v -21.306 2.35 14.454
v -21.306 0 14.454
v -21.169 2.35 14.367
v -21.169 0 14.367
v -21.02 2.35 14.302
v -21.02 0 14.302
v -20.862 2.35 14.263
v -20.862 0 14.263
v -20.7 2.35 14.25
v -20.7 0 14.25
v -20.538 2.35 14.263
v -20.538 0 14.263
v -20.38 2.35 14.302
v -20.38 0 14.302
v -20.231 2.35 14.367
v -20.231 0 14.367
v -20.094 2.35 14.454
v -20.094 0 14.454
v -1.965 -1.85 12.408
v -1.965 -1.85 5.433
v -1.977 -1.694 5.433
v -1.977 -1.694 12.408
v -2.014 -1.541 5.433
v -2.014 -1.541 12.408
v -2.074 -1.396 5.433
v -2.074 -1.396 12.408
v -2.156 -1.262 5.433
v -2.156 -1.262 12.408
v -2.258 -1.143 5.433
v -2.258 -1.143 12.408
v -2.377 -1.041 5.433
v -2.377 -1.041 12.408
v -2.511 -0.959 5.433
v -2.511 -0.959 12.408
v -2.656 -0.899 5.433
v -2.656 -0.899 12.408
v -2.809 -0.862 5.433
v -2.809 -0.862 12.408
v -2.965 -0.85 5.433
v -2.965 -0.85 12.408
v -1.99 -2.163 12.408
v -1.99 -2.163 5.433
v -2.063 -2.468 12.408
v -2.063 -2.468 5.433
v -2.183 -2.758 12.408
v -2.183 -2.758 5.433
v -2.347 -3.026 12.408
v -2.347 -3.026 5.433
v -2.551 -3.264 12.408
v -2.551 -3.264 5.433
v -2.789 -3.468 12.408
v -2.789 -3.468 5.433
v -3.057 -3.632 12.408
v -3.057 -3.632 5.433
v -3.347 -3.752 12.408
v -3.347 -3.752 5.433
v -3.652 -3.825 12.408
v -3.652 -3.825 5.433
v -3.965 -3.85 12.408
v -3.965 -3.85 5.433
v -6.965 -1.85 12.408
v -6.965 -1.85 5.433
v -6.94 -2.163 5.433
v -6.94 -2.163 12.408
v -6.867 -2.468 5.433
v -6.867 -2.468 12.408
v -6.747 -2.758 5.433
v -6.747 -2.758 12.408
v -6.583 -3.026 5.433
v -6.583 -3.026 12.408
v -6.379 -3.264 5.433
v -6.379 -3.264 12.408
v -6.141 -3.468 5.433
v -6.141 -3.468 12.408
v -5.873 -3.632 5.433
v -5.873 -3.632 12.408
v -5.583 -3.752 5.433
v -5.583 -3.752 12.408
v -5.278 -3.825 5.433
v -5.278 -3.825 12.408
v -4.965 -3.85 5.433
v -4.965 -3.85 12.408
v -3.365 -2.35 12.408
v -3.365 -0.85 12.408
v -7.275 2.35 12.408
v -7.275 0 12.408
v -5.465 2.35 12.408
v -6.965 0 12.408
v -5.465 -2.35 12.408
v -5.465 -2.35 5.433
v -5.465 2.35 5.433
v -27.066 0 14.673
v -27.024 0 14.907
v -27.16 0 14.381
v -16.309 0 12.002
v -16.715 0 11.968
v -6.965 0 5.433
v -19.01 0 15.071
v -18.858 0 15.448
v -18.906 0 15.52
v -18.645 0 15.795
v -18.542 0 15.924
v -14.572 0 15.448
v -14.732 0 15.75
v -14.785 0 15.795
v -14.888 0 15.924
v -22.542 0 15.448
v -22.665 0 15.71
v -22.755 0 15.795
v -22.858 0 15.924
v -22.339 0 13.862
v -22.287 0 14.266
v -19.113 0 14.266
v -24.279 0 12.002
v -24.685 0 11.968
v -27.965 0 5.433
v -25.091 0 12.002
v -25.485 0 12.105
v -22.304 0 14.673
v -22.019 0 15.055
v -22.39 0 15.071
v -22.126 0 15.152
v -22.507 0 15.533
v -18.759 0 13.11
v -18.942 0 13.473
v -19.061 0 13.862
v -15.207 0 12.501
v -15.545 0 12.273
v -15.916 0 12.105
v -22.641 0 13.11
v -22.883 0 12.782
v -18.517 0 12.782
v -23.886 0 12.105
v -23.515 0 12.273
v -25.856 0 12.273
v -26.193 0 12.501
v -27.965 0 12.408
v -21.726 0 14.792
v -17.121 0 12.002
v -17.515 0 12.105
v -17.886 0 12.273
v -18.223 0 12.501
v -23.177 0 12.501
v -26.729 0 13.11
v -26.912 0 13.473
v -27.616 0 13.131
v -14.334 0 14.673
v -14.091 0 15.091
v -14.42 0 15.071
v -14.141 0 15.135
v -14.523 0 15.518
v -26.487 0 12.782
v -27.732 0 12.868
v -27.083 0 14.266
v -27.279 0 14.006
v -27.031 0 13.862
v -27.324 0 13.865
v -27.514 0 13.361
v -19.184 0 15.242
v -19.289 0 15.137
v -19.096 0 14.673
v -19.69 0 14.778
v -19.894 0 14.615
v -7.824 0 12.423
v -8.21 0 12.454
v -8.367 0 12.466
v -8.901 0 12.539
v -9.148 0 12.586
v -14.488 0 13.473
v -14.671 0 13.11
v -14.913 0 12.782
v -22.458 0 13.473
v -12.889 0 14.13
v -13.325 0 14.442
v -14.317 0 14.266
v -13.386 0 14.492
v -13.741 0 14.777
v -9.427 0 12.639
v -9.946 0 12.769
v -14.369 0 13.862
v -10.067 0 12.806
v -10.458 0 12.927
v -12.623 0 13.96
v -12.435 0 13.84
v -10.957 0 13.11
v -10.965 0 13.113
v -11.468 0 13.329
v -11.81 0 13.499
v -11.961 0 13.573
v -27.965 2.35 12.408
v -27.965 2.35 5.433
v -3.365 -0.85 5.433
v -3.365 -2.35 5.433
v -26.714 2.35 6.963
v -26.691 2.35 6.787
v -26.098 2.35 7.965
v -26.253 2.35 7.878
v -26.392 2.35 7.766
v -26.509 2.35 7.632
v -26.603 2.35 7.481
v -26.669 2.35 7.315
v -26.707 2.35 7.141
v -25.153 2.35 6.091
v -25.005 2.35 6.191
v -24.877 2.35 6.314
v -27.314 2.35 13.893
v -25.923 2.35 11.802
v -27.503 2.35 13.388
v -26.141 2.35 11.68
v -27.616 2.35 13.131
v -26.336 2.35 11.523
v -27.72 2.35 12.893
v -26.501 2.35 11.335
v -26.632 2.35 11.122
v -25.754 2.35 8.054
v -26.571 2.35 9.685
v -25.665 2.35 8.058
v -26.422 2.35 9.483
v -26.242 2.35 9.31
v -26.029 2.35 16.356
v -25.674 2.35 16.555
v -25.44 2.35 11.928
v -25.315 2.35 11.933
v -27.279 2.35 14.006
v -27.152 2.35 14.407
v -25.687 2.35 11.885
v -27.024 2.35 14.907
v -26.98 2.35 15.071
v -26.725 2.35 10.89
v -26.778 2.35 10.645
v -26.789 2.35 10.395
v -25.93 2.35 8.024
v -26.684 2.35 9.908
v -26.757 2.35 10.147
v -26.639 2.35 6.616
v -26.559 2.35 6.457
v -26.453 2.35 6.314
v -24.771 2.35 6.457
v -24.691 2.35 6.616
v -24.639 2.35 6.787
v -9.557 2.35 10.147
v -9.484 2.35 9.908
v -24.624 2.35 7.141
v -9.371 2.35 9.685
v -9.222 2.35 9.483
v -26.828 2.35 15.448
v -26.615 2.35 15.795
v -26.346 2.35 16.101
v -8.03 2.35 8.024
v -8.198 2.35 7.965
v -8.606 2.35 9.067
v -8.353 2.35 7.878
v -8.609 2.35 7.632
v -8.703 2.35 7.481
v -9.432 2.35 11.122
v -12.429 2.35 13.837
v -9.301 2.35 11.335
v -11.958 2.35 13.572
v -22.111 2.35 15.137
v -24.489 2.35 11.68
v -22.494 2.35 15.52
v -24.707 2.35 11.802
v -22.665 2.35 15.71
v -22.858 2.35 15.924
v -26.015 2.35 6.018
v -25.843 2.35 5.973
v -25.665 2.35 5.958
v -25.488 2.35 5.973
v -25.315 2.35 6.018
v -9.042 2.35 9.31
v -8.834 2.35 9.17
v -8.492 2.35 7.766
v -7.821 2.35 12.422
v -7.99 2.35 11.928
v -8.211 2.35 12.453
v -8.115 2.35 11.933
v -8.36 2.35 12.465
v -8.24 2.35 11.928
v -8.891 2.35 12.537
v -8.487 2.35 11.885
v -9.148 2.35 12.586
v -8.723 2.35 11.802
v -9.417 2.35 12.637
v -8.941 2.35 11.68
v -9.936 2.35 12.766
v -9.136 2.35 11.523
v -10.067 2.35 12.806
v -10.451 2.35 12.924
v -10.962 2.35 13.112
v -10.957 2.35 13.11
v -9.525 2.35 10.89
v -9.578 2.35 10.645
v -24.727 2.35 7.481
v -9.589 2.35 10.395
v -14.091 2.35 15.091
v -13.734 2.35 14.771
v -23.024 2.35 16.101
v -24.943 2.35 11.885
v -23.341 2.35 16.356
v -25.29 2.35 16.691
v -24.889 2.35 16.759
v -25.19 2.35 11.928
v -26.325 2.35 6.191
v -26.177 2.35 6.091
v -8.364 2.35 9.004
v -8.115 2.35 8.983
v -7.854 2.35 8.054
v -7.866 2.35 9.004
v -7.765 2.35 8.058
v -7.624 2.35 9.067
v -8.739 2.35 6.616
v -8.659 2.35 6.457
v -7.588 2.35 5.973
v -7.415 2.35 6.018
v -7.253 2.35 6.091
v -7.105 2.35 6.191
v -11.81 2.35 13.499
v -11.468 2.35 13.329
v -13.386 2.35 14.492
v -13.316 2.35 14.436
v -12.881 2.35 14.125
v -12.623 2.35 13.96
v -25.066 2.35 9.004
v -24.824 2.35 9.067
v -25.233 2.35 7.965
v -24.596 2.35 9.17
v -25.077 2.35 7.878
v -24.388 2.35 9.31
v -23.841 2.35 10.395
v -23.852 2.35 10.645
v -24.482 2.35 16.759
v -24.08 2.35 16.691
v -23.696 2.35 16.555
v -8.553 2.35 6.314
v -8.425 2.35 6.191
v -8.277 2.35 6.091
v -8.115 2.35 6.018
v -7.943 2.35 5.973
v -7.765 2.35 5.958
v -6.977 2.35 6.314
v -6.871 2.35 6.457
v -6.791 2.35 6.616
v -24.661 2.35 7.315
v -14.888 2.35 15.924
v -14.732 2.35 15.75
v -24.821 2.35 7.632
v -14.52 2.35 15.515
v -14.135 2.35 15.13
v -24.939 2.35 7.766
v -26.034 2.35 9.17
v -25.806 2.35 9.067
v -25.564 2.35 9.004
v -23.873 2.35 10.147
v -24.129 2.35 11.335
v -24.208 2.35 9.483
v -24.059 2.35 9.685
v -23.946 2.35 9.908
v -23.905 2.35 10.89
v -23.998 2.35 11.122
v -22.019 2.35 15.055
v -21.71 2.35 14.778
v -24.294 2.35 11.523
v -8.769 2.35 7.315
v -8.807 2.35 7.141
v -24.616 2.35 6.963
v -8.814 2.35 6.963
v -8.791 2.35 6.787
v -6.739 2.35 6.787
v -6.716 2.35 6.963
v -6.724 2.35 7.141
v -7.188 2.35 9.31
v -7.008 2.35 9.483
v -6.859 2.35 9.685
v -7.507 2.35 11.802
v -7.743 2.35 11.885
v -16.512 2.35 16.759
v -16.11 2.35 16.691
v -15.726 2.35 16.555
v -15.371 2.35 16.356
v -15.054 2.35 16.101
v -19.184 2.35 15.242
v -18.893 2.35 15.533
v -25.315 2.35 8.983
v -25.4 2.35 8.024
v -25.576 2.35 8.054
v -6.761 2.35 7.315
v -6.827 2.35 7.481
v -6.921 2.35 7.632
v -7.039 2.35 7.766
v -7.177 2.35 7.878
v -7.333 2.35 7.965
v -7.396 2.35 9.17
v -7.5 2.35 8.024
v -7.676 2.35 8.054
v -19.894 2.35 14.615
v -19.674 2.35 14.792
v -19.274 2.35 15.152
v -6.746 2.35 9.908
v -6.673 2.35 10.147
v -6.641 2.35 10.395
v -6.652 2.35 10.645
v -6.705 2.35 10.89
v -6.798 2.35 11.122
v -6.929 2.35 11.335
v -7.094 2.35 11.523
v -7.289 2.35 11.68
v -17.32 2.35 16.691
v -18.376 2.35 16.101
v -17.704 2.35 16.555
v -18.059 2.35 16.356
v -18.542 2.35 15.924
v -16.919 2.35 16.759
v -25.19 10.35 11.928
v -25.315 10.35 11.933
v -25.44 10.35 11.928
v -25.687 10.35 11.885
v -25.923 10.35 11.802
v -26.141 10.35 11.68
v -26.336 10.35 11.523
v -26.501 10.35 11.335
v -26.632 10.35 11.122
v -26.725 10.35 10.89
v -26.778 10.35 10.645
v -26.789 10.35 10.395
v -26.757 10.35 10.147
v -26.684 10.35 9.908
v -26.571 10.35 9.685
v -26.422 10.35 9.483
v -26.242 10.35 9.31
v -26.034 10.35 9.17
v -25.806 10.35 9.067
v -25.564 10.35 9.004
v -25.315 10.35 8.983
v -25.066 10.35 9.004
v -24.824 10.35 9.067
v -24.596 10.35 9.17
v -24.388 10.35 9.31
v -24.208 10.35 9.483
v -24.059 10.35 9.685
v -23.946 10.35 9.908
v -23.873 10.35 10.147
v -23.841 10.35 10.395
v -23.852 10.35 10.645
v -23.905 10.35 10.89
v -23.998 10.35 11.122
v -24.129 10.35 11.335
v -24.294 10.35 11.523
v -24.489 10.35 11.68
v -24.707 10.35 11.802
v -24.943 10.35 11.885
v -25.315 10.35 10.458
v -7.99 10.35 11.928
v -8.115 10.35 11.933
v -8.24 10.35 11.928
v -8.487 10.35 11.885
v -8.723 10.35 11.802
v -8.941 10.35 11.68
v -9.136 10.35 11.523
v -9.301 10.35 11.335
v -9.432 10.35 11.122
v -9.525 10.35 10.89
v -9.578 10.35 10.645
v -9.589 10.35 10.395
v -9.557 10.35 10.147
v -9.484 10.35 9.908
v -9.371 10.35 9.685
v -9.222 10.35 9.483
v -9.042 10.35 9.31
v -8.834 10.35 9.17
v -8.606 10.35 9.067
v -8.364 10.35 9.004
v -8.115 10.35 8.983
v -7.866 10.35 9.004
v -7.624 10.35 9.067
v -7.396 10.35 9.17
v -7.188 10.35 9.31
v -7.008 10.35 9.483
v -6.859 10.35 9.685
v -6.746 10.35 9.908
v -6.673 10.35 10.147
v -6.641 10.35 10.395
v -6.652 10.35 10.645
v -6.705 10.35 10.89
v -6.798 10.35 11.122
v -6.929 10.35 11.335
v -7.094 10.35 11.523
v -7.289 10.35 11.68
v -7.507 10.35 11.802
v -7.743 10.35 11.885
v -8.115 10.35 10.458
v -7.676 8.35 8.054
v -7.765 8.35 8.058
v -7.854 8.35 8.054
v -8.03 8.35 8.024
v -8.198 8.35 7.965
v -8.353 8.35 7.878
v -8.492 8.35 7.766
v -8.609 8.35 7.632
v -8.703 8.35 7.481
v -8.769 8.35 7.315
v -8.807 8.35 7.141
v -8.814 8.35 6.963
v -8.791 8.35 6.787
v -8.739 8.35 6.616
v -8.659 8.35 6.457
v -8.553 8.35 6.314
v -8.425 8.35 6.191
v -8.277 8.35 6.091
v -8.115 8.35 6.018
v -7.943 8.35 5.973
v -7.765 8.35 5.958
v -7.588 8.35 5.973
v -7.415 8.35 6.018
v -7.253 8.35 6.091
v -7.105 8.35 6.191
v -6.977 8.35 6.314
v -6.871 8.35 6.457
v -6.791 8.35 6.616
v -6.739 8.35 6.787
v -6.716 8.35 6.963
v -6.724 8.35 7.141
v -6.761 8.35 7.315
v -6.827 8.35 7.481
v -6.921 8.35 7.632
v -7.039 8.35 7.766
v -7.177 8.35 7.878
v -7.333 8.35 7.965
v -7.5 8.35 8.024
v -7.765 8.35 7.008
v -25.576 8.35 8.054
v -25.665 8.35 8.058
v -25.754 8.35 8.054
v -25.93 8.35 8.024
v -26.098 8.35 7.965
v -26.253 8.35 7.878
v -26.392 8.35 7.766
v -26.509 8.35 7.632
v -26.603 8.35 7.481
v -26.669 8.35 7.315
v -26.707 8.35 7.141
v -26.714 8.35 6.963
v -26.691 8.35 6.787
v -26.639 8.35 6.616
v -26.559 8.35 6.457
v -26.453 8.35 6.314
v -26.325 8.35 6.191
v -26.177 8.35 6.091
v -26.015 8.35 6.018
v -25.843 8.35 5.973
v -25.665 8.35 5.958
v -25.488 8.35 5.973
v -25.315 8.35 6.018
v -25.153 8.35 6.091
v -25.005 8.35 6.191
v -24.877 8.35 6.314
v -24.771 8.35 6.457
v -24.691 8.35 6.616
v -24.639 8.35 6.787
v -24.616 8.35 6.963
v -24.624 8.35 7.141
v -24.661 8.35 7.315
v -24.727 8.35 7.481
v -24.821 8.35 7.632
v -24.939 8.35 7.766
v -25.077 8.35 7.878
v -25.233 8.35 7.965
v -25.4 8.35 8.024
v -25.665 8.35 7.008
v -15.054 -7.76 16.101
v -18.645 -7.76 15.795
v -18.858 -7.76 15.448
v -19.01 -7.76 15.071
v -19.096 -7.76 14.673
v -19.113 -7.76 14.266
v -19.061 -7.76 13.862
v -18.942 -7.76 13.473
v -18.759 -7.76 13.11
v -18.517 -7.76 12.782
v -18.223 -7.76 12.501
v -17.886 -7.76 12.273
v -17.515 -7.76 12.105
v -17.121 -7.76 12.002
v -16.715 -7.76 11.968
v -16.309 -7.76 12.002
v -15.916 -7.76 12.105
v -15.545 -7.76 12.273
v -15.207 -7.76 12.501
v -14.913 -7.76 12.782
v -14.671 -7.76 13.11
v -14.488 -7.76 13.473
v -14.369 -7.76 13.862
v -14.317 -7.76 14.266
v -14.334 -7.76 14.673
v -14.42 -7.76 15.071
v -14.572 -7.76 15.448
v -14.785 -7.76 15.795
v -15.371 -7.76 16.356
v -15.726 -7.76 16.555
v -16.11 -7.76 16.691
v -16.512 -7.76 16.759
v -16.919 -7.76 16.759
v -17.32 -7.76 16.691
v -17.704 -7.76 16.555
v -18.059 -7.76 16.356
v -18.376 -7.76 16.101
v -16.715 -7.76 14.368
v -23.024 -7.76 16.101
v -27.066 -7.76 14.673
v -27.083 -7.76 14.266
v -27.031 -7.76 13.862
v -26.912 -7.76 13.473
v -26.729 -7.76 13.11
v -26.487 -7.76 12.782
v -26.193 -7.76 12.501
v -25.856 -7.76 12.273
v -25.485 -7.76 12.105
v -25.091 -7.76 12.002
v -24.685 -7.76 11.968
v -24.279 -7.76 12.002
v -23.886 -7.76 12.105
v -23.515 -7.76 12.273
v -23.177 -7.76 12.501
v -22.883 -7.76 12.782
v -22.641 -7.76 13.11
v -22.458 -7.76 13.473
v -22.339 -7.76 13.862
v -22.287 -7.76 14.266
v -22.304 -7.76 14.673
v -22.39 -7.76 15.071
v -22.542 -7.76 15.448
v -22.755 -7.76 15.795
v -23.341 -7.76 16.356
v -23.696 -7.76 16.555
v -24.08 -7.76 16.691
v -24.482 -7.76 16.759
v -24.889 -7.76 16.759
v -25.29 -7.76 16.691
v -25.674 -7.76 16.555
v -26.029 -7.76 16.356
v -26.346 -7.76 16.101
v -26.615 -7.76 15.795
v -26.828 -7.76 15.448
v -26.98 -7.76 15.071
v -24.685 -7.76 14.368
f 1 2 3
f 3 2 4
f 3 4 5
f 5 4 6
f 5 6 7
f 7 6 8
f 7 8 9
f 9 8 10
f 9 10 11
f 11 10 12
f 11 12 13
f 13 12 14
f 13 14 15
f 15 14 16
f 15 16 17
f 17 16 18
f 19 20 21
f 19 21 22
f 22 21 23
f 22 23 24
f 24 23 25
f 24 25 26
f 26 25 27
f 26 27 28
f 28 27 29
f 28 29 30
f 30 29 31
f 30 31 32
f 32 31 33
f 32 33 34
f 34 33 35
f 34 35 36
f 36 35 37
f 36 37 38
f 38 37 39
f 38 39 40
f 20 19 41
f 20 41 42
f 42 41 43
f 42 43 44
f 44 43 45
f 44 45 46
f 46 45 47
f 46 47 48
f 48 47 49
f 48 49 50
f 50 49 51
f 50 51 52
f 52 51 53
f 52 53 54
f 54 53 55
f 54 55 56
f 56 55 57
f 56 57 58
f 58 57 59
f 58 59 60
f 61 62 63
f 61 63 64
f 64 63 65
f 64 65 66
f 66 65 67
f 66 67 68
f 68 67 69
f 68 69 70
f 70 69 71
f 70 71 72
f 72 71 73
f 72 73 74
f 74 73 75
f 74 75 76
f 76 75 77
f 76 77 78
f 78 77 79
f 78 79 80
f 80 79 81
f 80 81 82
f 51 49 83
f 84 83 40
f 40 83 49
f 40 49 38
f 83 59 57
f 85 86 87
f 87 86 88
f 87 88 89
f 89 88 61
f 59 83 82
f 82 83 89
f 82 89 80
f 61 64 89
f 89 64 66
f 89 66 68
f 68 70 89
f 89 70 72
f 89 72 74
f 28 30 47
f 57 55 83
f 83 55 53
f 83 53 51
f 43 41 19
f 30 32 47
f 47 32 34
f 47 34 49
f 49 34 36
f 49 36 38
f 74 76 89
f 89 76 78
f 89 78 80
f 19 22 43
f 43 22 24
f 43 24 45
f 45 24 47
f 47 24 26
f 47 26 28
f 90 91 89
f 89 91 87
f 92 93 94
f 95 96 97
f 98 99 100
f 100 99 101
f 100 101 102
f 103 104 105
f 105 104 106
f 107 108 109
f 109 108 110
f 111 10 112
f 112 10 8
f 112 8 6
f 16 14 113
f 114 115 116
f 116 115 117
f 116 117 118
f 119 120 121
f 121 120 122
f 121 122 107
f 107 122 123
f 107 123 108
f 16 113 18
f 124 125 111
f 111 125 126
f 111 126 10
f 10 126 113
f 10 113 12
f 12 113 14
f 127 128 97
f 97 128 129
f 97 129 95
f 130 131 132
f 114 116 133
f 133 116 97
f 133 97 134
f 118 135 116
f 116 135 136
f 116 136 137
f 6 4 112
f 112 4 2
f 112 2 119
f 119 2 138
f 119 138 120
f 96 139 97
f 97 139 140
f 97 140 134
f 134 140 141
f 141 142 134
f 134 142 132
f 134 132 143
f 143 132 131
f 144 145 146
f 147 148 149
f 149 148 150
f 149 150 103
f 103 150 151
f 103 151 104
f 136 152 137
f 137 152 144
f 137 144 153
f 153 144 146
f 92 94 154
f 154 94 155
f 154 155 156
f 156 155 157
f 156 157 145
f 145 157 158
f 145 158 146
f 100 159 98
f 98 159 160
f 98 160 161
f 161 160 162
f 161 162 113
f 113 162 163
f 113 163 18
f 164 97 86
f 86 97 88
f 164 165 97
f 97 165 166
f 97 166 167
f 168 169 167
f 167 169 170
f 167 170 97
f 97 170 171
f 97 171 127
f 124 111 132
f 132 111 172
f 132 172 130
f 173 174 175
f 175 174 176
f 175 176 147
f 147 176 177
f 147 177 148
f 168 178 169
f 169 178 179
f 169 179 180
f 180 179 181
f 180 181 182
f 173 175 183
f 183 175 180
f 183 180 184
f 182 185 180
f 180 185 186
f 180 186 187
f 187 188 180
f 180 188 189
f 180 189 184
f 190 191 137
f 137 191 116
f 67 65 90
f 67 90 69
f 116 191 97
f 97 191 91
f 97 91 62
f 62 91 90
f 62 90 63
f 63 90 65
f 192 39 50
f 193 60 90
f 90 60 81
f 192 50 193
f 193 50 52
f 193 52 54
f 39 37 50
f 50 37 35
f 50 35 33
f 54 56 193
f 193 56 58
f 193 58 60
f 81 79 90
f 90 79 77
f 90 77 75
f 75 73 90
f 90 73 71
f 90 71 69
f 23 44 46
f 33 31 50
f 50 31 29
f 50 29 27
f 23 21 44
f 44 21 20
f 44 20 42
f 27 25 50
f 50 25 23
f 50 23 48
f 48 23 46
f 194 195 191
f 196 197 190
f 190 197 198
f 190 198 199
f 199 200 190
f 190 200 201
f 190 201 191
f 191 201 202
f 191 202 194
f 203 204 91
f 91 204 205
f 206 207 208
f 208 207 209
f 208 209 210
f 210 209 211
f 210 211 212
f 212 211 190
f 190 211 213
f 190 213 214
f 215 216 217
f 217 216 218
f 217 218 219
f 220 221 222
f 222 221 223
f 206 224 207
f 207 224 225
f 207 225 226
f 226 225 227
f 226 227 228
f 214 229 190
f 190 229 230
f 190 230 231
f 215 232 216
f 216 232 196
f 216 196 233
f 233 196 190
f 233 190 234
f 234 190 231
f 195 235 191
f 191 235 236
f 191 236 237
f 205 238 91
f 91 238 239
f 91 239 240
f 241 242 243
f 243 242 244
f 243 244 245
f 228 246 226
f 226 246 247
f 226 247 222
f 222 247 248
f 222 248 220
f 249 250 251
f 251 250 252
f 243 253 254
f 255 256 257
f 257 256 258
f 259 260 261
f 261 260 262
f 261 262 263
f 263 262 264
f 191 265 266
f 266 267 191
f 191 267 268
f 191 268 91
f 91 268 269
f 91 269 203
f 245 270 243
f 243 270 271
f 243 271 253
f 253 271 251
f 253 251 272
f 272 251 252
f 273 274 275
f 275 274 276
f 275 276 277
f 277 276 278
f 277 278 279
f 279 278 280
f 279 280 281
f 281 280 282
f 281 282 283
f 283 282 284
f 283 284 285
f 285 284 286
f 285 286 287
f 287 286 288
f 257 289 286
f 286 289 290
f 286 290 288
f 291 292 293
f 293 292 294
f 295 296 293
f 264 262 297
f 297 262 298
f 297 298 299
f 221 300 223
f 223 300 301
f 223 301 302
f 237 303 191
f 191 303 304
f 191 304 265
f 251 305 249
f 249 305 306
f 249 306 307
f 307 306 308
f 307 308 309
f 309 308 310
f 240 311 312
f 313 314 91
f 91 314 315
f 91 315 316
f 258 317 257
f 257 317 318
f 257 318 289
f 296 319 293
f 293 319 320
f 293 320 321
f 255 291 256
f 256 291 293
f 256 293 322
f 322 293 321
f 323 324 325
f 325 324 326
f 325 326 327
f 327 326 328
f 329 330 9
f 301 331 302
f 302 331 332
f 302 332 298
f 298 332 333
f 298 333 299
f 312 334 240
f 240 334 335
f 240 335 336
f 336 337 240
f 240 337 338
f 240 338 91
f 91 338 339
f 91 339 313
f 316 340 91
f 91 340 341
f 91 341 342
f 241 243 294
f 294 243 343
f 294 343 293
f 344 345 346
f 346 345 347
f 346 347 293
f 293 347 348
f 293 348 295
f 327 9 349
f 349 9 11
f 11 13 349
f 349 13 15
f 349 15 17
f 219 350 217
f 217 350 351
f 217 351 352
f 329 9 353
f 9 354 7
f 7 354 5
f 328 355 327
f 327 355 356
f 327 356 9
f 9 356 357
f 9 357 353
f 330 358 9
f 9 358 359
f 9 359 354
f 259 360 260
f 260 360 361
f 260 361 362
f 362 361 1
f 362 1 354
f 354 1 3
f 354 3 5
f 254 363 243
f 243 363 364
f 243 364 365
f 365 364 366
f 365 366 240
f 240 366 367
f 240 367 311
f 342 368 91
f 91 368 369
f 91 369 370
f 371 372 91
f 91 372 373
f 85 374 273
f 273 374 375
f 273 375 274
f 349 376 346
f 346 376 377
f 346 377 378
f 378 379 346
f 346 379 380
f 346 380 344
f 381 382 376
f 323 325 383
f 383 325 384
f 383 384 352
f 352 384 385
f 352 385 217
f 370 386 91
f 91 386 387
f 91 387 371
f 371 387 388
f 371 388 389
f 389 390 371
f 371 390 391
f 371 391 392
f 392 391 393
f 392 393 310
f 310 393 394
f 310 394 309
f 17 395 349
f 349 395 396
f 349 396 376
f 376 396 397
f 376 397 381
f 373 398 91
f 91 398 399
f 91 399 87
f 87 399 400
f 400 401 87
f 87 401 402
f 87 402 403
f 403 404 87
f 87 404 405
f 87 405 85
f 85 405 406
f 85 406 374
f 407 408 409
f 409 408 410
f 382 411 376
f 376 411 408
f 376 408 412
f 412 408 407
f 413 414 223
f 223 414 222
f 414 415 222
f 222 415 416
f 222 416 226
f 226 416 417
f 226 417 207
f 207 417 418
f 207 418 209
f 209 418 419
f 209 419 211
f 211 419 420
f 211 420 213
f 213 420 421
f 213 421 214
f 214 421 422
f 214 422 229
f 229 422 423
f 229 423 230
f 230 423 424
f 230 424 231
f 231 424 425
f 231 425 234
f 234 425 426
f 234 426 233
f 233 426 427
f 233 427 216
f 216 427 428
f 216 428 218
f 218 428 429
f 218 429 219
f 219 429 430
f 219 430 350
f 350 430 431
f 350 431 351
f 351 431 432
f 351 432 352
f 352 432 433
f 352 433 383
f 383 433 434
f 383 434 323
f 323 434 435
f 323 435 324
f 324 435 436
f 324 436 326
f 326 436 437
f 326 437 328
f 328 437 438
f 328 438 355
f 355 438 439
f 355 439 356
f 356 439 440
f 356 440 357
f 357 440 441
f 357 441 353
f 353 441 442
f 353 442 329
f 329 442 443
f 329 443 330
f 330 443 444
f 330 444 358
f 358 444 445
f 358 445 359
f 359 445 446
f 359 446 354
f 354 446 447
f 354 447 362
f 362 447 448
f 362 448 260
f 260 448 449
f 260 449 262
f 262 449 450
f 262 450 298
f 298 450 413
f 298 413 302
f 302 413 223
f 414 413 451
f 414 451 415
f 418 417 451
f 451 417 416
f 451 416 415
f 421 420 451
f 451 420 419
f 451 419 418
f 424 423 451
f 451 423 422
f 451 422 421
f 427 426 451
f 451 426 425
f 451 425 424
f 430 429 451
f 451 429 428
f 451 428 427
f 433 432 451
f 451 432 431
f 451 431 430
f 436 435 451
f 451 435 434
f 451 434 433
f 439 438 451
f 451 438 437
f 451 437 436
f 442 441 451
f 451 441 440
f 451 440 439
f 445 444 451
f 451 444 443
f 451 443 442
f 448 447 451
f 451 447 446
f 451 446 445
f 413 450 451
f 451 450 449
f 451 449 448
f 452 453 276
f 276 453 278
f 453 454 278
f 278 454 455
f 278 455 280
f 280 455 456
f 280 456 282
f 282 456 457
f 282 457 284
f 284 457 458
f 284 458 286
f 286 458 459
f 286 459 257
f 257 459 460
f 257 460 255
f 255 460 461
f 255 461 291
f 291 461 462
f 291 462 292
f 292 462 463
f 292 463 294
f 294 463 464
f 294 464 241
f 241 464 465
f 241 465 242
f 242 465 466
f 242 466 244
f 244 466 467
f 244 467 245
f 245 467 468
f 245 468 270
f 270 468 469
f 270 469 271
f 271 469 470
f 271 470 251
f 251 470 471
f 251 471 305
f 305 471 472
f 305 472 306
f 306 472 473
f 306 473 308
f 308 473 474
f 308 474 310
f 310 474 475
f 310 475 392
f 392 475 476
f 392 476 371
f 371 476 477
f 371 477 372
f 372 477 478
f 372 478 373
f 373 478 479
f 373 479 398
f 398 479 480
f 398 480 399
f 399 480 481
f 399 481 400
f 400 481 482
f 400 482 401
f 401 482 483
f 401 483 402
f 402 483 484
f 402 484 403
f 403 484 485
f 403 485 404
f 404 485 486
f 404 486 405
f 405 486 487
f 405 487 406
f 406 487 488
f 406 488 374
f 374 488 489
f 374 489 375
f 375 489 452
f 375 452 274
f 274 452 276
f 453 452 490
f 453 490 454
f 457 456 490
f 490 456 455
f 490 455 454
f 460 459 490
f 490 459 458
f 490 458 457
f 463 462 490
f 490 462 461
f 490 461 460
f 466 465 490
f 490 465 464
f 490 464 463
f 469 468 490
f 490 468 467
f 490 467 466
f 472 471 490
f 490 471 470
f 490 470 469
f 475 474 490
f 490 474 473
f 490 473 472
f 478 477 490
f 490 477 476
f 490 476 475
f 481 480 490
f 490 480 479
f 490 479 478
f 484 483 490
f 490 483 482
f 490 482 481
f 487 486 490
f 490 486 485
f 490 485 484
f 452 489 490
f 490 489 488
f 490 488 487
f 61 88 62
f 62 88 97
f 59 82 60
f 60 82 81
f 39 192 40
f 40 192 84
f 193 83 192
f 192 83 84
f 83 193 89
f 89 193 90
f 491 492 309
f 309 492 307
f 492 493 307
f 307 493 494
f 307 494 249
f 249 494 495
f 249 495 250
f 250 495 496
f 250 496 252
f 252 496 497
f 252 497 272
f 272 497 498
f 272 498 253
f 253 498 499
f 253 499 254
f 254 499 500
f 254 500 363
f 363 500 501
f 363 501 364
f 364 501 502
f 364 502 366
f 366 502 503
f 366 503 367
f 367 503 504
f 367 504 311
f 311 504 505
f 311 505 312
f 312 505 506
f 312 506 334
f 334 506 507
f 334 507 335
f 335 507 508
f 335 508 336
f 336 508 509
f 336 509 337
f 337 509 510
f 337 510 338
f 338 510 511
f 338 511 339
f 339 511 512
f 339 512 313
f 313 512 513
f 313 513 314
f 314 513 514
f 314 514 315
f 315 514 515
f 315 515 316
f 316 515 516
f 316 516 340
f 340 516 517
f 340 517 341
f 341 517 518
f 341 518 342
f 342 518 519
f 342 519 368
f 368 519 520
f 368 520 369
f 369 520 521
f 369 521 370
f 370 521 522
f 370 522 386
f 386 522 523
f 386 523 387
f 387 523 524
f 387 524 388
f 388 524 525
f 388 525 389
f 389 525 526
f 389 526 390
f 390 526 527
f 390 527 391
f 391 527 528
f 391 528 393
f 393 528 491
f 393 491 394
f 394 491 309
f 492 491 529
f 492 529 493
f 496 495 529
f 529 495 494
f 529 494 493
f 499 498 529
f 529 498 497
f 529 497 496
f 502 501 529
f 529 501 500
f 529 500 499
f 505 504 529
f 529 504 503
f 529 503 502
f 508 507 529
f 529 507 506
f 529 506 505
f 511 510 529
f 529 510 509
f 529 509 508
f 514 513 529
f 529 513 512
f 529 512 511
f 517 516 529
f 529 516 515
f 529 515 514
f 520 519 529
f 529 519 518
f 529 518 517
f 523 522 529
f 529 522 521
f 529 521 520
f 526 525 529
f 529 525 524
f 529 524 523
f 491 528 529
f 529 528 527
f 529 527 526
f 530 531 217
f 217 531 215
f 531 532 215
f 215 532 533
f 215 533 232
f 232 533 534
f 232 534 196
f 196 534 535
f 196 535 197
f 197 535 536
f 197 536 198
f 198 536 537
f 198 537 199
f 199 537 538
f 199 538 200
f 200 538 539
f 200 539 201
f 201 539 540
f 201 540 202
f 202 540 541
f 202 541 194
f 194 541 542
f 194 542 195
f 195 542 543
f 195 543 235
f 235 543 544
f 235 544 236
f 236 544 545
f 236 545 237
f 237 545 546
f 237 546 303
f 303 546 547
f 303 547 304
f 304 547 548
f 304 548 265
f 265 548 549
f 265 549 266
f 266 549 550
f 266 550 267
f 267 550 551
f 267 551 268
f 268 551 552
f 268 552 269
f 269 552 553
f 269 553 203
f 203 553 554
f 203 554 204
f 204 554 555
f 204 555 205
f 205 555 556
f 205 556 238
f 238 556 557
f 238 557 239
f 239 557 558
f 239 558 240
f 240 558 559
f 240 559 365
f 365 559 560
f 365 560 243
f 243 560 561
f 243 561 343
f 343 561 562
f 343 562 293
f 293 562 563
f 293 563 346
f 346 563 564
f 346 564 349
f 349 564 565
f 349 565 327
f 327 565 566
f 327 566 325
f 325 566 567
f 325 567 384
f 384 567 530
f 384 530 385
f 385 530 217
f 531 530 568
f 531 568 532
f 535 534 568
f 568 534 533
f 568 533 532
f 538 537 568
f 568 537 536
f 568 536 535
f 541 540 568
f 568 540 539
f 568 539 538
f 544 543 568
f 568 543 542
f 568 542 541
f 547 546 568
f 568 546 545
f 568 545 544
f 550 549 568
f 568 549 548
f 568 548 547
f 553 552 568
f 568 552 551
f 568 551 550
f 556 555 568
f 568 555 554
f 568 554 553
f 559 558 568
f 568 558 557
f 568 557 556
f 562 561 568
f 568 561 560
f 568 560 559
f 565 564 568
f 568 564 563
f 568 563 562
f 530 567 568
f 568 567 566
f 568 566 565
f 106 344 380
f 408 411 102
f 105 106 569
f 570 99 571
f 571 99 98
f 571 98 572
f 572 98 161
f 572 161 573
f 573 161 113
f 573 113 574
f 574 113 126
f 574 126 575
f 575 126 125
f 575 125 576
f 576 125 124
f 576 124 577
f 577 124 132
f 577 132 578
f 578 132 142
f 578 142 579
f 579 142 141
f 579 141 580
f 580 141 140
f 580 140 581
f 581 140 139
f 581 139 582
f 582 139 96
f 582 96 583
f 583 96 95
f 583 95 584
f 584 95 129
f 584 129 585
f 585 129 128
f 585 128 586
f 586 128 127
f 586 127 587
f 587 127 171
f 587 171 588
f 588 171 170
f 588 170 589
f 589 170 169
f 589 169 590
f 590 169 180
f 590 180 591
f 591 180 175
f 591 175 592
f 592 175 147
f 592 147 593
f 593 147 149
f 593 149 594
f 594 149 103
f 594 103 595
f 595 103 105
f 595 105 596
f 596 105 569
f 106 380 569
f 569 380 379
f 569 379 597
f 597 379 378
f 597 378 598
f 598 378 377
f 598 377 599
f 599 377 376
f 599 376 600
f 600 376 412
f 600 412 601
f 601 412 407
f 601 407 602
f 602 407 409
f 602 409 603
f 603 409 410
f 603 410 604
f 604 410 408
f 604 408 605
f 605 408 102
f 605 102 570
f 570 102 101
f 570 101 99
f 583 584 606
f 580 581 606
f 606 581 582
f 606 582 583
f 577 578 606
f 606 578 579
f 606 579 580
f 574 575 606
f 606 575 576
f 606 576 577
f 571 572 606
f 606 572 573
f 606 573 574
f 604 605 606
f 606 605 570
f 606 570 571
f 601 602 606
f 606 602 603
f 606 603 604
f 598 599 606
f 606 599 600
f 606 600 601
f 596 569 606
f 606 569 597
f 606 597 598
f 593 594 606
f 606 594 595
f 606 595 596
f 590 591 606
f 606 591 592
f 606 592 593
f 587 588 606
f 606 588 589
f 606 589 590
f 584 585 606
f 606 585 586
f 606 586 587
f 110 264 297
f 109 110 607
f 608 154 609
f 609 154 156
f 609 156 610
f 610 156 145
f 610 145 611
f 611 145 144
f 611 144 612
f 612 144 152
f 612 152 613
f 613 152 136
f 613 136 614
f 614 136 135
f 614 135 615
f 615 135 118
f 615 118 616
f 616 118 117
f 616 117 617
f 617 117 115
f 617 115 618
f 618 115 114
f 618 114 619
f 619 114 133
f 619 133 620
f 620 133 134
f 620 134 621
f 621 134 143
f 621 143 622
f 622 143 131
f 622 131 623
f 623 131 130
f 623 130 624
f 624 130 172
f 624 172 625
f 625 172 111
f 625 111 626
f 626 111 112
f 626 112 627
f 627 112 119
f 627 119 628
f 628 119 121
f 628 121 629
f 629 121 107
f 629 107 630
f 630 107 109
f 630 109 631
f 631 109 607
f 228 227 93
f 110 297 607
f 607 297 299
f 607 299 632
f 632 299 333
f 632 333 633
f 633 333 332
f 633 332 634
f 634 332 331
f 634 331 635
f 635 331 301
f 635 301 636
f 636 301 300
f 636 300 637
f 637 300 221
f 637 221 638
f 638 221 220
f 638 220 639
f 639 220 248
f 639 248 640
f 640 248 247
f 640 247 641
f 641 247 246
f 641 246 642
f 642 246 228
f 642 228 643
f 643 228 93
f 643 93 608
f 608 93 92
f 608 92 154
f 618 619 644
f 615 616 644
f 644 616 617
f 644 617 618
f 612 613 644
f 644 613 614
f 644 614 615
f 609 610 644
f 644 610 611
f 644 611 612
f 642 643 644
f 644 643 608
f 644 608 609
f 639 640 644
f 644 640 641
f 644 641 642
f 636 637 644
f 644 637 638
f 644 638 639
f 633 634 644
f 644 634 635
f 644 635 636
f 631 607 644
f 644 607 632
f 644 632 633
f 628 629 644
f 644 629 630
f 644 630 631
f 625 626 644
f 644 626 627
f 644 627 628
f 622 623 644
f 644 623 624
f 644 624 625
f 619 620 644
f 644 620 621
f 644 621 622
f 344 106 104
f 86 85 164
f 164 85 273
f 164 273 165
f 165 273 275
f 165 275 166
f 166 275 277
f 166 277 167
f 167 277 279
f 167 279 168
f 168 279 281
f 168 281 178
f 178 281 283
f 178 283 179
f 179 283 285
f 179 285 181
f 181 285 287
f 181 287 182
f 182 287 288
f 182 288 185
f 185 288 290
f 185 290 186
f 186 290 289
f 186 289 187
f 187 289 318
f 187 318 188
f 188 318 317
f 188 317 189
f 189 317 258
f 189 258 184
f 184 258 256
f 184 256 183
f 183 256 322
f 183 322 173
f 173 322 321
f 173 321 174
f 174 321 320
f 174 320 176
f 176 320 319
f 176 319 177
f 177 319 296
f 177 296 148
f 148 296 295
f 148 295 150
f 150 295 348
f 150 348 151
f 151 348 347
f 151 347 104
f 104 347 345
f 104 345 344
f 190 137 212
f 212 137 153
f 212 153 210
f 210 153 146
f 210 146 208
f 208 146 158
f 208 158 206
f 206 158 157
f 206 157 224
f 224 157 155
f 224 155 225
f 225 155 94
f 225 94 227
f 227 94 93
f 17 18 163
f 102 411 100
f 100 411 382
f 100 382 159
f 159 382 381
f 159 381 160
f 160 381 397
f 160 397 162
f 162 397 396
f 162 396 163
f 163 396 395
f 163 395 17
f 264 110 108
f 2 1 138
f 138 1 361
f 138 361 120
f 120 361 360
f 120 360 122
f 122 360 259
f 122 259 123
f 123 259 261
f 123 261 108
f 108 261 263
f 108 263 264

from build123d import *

# Parameters (mm, degrees)
SKETCH1_W                = 22.5
SKETCH1_H                = 6.975
BOSS_EXTRUDE1_DEPTH      = 2.35
SKETCH2_R                = 1.475
BOSS_EXTRUDE2_DEPTH      = 8
SKETCH3_W                = 1.5
SKETCH3_H                = 6.975
BOSS_EXTRUDE3_DEPTH      = 3.85
SKETCH4_W                = 6.975
SKETCH4_H                = 3
BOSS_EXTRUDE4_DEPTH      = 3.5
SKETCH5_W                = 2.1
SKETCH5_H                = 6.975
CUT_EXTRUDE1_DEPTH       = 1.5
SKETCH6_R                = 1.05
BOSS_EXTRUDE5_DEPTH      = 6
BOSS_EXTRUDE9_DEPTH      = 7.76
BOSS_EXTRUDE9_DEPTH_BACK = 2.35
SKETCH7_R                = 2.4
FILLET1_R                = 2
FILLET2_R                = 2
FILLET3_R                = 1
FILLET4_DEPTH            = 2.35
FILLET5_R                = 1


with BuildPart() as part:
    # Sketch1 → Boss-Extrude1 (new body)
    with BuildSketch(Plane(origin=(0, 0, 0), x_dir=(1, 0, 0), z_dir=(0, 1, 0))):
        with Locations((-16.71505467, -8.920455339)):
            Rectangle(SKETCH1_W, SKETCH1_H)
    extrude(amount=BOSS_EXTRUDE1_DEPTH)

    # Sketch2 → Boss-Extrude2 (add)
    with BuildSketch(Plane(origin=(0, 2.35, 0), x_dir=(1, 0, 0), z_dir=(0, 1, 0))):
        with Locations(Location((-25.31505467, -10.457955339, 0), (0, 0, 270))):
            Circle(SKETCH2_R)
        with Locations(Location((-8.11505467, -10.457955339, 0), (0, 0, 270))):
            Circle(SKETCH2_R)
    extrude(amount=BOSS_EXTRUDE2_DEPTH)

    # Sketch3 → Boss-Extrude3 (add)
    with BuildSketch(Plane(origin=(0, 0, 0), x_dir=(-1, 0, 0), z_dir=(0, -1, 0))):
        with Locations((6.21505467, -8.920455339)):
            Rectangle(SKETCH3_W, SKETCH3_H)
    extrude(amount=BOSS_EXTRUDE3_DEPTH)

    # Sketch4 → Boss-Extrude4 (add)
    with BuildSketch(Plane(origin=(-5.46505467, 0, 0), x_dir=(0, 0, -1), z_dir=(1, 0, 0))):
        with Locations((-8.920455339, -2.35)):
            Rectangle(SKETCH4_W, SKETCH4_H)
    extrude(amount=BOSS_EXTRUDE4_DEPTH)

    # Sketch5 → Cut-Extrude1 (cut)
    with BuildSketch(Plane(origin=(0, -0.85, 0), x_dir=(1, 0, 0), z_dir=(0, 1, 0))):
        with Locations((-4.41505467, -8.920455339)):
            Rectangle(SKETCH5_W, SKETCH5_H)
    extrude(amount=-CUT_EXTRUDE1_DEPTH, mode=Mode.SUBTRACT)

    # Sketch6 → Boss-Extrude5 (add)
    with BuildSketch(Plane(origin=(0, 2.35, 0), x_dir=(1, 0, 0), z_dir=(0, 1, 0))):
        with Locations(Location((-7.76505467, -7.007955339, 0), (0, 0, 270))):
            Circle(SKETCH6_R)
        with Locations(Location((-25.66505467, -7.007955339, 0), (0, 0, 270))):
            Circle(SKETCH6_R)
    extrude(amount=BOSS_EXTRUDE5_DEPTH)

    # Sketch7 → Boss-Extrude9 (add, two sides: drawn at the far end of the back side and taken through both)
    with BuildSketch(Plane(origin=(0, 0, 0), x_dir=(-1, 0, 0), z_dir=(0, -1, 0)).offset(-BOSS_EXTRUDE9_DEPTH_BACK)):
        with Locations(Location((16.71505467, -14.367955339, 0), (0, 0, 90))):
            Circle(SKETCH7_R)
        with Locations(Location((24.68505467, -14.367955339, 0), (0, 0, 90))):
            Circle(SKETCH7_R)
    extrude(amount=BOSS_EXTRUDE9_DEPTH + BOSS_EXTRUDE9_DEPTH_BACK)

    # Fillet1
    fillet1_edges = [part.edges().sort_by_distance(p)[0] for p in [
        (-6.96505467, -3.85, 8.920455339),
    ]]
    fillet(fillet1_edges, radius=FILLET1_R)

    # Fillet2
    fillet2_edges = [part.edges().sort_by_distance(p)[0] for p in [
        (-1.96505467, -3.85, 8.920455339),
    ]]
    fillet(fillet2_edges, radius=FILLET2_R)

    # Fillet3
    fillet3_edges = [part.edges().sort_by_distance(p)[0] for p in [
        (-1.96505467, -0.85, 8.920455339),
    ]]
    fillet(fillet3_edges, radius=FILLET3_R - 0.0001)  # a hair under: the kernel refuses the full size

    # Fillet4: read off the stored shape, not the designer's step
    # Fillet4 outline → Fillet4 (add)
    with BuildSketch(Plane(origin=(0, 0, 0), x_dir=(1, 0, 0), z_dir=(0, 1, 0))):
        with BuildLine():
            add(Edge.make_bspline(
                [(-7.274800436, -12.407955339), (-11.89332012, -12.407955339), (-14.887908689, -15.924084371)],
                knots=[0, 0, 0, 1, 1, 1], degree=2, weights=[1, 0.907851061, 1]))
            Line((-7.274800436, -12.407955339), (-15.329991494, -12.407955339))
            ThreePointArc((-15.329991494, -12.407955339), (-14.333802319, -14.068560547), (-14.887908689, -15.924084371))
        make_face()
        with BuildLine():
            add(Edge.make_bspline(
                [(-18.54220065, -15.924084371), (-19.483433236, -14.818925802), (-20.700054672, -14.027012596)],
                knots=[0, 0, 0, 0.335510555, 0.335510555, 0.335510555], degree=2, weights=[1, 0.969083058, 0.958912037]))
            ThreePointArc((-18.54220065, -15.924084371), (-19.096307021, -14.068560547), (-18.100117845, -12.407955339))
            Line((-18.100117845, -12.407955339), (-23.299991494, -12.407955339))
            ThreePointArc((-23.299991494, -12.407955339), (-22.303802319, -14.068560547), (-22.857908689, -15.924084371))
            add(Edge.make_bspline(
                [(-20.700054672, -14.027012596), (-21.916676104, -14.818925803), (-22.857908689, -15.924084371)],
                knots=[0.664489445, 0.664489445, 0.664489445, 1, 1, 1], degree=2, weights=[0.958912037, 0.969083058, 1]))
        make_face()
        with BuildLine():
            ThreePointArc((-27.023832507, -14.906581581), (-26.92727037, -13.512111455), (-26.070117845, -12.407955339))
            Line((-26.070117845, -12.407955339), (-27.96505467, -12.407955339))
            add(Edge.make_bspline(
                [(-27.023832507, -14.906581581), (-27.326152305, -13.59387383), (-27.96505467, -12.407955339)],
                knots=[0, 0, 0, 1, 1, 1], degree=2, weights=[1, 0.991048646, 1]))
        make_face()
    extrude(amount=FILLET4_DEPTH)

    # Fillet5
    fillet5_edges = [part.edges().sort_by_distance(p)[0] for p in [
        (-20.700054672, 1.175, 14.027012596),
    ]]
    fillet(fillet5_edges, radius=FILLET5_R)


solid = part.part
